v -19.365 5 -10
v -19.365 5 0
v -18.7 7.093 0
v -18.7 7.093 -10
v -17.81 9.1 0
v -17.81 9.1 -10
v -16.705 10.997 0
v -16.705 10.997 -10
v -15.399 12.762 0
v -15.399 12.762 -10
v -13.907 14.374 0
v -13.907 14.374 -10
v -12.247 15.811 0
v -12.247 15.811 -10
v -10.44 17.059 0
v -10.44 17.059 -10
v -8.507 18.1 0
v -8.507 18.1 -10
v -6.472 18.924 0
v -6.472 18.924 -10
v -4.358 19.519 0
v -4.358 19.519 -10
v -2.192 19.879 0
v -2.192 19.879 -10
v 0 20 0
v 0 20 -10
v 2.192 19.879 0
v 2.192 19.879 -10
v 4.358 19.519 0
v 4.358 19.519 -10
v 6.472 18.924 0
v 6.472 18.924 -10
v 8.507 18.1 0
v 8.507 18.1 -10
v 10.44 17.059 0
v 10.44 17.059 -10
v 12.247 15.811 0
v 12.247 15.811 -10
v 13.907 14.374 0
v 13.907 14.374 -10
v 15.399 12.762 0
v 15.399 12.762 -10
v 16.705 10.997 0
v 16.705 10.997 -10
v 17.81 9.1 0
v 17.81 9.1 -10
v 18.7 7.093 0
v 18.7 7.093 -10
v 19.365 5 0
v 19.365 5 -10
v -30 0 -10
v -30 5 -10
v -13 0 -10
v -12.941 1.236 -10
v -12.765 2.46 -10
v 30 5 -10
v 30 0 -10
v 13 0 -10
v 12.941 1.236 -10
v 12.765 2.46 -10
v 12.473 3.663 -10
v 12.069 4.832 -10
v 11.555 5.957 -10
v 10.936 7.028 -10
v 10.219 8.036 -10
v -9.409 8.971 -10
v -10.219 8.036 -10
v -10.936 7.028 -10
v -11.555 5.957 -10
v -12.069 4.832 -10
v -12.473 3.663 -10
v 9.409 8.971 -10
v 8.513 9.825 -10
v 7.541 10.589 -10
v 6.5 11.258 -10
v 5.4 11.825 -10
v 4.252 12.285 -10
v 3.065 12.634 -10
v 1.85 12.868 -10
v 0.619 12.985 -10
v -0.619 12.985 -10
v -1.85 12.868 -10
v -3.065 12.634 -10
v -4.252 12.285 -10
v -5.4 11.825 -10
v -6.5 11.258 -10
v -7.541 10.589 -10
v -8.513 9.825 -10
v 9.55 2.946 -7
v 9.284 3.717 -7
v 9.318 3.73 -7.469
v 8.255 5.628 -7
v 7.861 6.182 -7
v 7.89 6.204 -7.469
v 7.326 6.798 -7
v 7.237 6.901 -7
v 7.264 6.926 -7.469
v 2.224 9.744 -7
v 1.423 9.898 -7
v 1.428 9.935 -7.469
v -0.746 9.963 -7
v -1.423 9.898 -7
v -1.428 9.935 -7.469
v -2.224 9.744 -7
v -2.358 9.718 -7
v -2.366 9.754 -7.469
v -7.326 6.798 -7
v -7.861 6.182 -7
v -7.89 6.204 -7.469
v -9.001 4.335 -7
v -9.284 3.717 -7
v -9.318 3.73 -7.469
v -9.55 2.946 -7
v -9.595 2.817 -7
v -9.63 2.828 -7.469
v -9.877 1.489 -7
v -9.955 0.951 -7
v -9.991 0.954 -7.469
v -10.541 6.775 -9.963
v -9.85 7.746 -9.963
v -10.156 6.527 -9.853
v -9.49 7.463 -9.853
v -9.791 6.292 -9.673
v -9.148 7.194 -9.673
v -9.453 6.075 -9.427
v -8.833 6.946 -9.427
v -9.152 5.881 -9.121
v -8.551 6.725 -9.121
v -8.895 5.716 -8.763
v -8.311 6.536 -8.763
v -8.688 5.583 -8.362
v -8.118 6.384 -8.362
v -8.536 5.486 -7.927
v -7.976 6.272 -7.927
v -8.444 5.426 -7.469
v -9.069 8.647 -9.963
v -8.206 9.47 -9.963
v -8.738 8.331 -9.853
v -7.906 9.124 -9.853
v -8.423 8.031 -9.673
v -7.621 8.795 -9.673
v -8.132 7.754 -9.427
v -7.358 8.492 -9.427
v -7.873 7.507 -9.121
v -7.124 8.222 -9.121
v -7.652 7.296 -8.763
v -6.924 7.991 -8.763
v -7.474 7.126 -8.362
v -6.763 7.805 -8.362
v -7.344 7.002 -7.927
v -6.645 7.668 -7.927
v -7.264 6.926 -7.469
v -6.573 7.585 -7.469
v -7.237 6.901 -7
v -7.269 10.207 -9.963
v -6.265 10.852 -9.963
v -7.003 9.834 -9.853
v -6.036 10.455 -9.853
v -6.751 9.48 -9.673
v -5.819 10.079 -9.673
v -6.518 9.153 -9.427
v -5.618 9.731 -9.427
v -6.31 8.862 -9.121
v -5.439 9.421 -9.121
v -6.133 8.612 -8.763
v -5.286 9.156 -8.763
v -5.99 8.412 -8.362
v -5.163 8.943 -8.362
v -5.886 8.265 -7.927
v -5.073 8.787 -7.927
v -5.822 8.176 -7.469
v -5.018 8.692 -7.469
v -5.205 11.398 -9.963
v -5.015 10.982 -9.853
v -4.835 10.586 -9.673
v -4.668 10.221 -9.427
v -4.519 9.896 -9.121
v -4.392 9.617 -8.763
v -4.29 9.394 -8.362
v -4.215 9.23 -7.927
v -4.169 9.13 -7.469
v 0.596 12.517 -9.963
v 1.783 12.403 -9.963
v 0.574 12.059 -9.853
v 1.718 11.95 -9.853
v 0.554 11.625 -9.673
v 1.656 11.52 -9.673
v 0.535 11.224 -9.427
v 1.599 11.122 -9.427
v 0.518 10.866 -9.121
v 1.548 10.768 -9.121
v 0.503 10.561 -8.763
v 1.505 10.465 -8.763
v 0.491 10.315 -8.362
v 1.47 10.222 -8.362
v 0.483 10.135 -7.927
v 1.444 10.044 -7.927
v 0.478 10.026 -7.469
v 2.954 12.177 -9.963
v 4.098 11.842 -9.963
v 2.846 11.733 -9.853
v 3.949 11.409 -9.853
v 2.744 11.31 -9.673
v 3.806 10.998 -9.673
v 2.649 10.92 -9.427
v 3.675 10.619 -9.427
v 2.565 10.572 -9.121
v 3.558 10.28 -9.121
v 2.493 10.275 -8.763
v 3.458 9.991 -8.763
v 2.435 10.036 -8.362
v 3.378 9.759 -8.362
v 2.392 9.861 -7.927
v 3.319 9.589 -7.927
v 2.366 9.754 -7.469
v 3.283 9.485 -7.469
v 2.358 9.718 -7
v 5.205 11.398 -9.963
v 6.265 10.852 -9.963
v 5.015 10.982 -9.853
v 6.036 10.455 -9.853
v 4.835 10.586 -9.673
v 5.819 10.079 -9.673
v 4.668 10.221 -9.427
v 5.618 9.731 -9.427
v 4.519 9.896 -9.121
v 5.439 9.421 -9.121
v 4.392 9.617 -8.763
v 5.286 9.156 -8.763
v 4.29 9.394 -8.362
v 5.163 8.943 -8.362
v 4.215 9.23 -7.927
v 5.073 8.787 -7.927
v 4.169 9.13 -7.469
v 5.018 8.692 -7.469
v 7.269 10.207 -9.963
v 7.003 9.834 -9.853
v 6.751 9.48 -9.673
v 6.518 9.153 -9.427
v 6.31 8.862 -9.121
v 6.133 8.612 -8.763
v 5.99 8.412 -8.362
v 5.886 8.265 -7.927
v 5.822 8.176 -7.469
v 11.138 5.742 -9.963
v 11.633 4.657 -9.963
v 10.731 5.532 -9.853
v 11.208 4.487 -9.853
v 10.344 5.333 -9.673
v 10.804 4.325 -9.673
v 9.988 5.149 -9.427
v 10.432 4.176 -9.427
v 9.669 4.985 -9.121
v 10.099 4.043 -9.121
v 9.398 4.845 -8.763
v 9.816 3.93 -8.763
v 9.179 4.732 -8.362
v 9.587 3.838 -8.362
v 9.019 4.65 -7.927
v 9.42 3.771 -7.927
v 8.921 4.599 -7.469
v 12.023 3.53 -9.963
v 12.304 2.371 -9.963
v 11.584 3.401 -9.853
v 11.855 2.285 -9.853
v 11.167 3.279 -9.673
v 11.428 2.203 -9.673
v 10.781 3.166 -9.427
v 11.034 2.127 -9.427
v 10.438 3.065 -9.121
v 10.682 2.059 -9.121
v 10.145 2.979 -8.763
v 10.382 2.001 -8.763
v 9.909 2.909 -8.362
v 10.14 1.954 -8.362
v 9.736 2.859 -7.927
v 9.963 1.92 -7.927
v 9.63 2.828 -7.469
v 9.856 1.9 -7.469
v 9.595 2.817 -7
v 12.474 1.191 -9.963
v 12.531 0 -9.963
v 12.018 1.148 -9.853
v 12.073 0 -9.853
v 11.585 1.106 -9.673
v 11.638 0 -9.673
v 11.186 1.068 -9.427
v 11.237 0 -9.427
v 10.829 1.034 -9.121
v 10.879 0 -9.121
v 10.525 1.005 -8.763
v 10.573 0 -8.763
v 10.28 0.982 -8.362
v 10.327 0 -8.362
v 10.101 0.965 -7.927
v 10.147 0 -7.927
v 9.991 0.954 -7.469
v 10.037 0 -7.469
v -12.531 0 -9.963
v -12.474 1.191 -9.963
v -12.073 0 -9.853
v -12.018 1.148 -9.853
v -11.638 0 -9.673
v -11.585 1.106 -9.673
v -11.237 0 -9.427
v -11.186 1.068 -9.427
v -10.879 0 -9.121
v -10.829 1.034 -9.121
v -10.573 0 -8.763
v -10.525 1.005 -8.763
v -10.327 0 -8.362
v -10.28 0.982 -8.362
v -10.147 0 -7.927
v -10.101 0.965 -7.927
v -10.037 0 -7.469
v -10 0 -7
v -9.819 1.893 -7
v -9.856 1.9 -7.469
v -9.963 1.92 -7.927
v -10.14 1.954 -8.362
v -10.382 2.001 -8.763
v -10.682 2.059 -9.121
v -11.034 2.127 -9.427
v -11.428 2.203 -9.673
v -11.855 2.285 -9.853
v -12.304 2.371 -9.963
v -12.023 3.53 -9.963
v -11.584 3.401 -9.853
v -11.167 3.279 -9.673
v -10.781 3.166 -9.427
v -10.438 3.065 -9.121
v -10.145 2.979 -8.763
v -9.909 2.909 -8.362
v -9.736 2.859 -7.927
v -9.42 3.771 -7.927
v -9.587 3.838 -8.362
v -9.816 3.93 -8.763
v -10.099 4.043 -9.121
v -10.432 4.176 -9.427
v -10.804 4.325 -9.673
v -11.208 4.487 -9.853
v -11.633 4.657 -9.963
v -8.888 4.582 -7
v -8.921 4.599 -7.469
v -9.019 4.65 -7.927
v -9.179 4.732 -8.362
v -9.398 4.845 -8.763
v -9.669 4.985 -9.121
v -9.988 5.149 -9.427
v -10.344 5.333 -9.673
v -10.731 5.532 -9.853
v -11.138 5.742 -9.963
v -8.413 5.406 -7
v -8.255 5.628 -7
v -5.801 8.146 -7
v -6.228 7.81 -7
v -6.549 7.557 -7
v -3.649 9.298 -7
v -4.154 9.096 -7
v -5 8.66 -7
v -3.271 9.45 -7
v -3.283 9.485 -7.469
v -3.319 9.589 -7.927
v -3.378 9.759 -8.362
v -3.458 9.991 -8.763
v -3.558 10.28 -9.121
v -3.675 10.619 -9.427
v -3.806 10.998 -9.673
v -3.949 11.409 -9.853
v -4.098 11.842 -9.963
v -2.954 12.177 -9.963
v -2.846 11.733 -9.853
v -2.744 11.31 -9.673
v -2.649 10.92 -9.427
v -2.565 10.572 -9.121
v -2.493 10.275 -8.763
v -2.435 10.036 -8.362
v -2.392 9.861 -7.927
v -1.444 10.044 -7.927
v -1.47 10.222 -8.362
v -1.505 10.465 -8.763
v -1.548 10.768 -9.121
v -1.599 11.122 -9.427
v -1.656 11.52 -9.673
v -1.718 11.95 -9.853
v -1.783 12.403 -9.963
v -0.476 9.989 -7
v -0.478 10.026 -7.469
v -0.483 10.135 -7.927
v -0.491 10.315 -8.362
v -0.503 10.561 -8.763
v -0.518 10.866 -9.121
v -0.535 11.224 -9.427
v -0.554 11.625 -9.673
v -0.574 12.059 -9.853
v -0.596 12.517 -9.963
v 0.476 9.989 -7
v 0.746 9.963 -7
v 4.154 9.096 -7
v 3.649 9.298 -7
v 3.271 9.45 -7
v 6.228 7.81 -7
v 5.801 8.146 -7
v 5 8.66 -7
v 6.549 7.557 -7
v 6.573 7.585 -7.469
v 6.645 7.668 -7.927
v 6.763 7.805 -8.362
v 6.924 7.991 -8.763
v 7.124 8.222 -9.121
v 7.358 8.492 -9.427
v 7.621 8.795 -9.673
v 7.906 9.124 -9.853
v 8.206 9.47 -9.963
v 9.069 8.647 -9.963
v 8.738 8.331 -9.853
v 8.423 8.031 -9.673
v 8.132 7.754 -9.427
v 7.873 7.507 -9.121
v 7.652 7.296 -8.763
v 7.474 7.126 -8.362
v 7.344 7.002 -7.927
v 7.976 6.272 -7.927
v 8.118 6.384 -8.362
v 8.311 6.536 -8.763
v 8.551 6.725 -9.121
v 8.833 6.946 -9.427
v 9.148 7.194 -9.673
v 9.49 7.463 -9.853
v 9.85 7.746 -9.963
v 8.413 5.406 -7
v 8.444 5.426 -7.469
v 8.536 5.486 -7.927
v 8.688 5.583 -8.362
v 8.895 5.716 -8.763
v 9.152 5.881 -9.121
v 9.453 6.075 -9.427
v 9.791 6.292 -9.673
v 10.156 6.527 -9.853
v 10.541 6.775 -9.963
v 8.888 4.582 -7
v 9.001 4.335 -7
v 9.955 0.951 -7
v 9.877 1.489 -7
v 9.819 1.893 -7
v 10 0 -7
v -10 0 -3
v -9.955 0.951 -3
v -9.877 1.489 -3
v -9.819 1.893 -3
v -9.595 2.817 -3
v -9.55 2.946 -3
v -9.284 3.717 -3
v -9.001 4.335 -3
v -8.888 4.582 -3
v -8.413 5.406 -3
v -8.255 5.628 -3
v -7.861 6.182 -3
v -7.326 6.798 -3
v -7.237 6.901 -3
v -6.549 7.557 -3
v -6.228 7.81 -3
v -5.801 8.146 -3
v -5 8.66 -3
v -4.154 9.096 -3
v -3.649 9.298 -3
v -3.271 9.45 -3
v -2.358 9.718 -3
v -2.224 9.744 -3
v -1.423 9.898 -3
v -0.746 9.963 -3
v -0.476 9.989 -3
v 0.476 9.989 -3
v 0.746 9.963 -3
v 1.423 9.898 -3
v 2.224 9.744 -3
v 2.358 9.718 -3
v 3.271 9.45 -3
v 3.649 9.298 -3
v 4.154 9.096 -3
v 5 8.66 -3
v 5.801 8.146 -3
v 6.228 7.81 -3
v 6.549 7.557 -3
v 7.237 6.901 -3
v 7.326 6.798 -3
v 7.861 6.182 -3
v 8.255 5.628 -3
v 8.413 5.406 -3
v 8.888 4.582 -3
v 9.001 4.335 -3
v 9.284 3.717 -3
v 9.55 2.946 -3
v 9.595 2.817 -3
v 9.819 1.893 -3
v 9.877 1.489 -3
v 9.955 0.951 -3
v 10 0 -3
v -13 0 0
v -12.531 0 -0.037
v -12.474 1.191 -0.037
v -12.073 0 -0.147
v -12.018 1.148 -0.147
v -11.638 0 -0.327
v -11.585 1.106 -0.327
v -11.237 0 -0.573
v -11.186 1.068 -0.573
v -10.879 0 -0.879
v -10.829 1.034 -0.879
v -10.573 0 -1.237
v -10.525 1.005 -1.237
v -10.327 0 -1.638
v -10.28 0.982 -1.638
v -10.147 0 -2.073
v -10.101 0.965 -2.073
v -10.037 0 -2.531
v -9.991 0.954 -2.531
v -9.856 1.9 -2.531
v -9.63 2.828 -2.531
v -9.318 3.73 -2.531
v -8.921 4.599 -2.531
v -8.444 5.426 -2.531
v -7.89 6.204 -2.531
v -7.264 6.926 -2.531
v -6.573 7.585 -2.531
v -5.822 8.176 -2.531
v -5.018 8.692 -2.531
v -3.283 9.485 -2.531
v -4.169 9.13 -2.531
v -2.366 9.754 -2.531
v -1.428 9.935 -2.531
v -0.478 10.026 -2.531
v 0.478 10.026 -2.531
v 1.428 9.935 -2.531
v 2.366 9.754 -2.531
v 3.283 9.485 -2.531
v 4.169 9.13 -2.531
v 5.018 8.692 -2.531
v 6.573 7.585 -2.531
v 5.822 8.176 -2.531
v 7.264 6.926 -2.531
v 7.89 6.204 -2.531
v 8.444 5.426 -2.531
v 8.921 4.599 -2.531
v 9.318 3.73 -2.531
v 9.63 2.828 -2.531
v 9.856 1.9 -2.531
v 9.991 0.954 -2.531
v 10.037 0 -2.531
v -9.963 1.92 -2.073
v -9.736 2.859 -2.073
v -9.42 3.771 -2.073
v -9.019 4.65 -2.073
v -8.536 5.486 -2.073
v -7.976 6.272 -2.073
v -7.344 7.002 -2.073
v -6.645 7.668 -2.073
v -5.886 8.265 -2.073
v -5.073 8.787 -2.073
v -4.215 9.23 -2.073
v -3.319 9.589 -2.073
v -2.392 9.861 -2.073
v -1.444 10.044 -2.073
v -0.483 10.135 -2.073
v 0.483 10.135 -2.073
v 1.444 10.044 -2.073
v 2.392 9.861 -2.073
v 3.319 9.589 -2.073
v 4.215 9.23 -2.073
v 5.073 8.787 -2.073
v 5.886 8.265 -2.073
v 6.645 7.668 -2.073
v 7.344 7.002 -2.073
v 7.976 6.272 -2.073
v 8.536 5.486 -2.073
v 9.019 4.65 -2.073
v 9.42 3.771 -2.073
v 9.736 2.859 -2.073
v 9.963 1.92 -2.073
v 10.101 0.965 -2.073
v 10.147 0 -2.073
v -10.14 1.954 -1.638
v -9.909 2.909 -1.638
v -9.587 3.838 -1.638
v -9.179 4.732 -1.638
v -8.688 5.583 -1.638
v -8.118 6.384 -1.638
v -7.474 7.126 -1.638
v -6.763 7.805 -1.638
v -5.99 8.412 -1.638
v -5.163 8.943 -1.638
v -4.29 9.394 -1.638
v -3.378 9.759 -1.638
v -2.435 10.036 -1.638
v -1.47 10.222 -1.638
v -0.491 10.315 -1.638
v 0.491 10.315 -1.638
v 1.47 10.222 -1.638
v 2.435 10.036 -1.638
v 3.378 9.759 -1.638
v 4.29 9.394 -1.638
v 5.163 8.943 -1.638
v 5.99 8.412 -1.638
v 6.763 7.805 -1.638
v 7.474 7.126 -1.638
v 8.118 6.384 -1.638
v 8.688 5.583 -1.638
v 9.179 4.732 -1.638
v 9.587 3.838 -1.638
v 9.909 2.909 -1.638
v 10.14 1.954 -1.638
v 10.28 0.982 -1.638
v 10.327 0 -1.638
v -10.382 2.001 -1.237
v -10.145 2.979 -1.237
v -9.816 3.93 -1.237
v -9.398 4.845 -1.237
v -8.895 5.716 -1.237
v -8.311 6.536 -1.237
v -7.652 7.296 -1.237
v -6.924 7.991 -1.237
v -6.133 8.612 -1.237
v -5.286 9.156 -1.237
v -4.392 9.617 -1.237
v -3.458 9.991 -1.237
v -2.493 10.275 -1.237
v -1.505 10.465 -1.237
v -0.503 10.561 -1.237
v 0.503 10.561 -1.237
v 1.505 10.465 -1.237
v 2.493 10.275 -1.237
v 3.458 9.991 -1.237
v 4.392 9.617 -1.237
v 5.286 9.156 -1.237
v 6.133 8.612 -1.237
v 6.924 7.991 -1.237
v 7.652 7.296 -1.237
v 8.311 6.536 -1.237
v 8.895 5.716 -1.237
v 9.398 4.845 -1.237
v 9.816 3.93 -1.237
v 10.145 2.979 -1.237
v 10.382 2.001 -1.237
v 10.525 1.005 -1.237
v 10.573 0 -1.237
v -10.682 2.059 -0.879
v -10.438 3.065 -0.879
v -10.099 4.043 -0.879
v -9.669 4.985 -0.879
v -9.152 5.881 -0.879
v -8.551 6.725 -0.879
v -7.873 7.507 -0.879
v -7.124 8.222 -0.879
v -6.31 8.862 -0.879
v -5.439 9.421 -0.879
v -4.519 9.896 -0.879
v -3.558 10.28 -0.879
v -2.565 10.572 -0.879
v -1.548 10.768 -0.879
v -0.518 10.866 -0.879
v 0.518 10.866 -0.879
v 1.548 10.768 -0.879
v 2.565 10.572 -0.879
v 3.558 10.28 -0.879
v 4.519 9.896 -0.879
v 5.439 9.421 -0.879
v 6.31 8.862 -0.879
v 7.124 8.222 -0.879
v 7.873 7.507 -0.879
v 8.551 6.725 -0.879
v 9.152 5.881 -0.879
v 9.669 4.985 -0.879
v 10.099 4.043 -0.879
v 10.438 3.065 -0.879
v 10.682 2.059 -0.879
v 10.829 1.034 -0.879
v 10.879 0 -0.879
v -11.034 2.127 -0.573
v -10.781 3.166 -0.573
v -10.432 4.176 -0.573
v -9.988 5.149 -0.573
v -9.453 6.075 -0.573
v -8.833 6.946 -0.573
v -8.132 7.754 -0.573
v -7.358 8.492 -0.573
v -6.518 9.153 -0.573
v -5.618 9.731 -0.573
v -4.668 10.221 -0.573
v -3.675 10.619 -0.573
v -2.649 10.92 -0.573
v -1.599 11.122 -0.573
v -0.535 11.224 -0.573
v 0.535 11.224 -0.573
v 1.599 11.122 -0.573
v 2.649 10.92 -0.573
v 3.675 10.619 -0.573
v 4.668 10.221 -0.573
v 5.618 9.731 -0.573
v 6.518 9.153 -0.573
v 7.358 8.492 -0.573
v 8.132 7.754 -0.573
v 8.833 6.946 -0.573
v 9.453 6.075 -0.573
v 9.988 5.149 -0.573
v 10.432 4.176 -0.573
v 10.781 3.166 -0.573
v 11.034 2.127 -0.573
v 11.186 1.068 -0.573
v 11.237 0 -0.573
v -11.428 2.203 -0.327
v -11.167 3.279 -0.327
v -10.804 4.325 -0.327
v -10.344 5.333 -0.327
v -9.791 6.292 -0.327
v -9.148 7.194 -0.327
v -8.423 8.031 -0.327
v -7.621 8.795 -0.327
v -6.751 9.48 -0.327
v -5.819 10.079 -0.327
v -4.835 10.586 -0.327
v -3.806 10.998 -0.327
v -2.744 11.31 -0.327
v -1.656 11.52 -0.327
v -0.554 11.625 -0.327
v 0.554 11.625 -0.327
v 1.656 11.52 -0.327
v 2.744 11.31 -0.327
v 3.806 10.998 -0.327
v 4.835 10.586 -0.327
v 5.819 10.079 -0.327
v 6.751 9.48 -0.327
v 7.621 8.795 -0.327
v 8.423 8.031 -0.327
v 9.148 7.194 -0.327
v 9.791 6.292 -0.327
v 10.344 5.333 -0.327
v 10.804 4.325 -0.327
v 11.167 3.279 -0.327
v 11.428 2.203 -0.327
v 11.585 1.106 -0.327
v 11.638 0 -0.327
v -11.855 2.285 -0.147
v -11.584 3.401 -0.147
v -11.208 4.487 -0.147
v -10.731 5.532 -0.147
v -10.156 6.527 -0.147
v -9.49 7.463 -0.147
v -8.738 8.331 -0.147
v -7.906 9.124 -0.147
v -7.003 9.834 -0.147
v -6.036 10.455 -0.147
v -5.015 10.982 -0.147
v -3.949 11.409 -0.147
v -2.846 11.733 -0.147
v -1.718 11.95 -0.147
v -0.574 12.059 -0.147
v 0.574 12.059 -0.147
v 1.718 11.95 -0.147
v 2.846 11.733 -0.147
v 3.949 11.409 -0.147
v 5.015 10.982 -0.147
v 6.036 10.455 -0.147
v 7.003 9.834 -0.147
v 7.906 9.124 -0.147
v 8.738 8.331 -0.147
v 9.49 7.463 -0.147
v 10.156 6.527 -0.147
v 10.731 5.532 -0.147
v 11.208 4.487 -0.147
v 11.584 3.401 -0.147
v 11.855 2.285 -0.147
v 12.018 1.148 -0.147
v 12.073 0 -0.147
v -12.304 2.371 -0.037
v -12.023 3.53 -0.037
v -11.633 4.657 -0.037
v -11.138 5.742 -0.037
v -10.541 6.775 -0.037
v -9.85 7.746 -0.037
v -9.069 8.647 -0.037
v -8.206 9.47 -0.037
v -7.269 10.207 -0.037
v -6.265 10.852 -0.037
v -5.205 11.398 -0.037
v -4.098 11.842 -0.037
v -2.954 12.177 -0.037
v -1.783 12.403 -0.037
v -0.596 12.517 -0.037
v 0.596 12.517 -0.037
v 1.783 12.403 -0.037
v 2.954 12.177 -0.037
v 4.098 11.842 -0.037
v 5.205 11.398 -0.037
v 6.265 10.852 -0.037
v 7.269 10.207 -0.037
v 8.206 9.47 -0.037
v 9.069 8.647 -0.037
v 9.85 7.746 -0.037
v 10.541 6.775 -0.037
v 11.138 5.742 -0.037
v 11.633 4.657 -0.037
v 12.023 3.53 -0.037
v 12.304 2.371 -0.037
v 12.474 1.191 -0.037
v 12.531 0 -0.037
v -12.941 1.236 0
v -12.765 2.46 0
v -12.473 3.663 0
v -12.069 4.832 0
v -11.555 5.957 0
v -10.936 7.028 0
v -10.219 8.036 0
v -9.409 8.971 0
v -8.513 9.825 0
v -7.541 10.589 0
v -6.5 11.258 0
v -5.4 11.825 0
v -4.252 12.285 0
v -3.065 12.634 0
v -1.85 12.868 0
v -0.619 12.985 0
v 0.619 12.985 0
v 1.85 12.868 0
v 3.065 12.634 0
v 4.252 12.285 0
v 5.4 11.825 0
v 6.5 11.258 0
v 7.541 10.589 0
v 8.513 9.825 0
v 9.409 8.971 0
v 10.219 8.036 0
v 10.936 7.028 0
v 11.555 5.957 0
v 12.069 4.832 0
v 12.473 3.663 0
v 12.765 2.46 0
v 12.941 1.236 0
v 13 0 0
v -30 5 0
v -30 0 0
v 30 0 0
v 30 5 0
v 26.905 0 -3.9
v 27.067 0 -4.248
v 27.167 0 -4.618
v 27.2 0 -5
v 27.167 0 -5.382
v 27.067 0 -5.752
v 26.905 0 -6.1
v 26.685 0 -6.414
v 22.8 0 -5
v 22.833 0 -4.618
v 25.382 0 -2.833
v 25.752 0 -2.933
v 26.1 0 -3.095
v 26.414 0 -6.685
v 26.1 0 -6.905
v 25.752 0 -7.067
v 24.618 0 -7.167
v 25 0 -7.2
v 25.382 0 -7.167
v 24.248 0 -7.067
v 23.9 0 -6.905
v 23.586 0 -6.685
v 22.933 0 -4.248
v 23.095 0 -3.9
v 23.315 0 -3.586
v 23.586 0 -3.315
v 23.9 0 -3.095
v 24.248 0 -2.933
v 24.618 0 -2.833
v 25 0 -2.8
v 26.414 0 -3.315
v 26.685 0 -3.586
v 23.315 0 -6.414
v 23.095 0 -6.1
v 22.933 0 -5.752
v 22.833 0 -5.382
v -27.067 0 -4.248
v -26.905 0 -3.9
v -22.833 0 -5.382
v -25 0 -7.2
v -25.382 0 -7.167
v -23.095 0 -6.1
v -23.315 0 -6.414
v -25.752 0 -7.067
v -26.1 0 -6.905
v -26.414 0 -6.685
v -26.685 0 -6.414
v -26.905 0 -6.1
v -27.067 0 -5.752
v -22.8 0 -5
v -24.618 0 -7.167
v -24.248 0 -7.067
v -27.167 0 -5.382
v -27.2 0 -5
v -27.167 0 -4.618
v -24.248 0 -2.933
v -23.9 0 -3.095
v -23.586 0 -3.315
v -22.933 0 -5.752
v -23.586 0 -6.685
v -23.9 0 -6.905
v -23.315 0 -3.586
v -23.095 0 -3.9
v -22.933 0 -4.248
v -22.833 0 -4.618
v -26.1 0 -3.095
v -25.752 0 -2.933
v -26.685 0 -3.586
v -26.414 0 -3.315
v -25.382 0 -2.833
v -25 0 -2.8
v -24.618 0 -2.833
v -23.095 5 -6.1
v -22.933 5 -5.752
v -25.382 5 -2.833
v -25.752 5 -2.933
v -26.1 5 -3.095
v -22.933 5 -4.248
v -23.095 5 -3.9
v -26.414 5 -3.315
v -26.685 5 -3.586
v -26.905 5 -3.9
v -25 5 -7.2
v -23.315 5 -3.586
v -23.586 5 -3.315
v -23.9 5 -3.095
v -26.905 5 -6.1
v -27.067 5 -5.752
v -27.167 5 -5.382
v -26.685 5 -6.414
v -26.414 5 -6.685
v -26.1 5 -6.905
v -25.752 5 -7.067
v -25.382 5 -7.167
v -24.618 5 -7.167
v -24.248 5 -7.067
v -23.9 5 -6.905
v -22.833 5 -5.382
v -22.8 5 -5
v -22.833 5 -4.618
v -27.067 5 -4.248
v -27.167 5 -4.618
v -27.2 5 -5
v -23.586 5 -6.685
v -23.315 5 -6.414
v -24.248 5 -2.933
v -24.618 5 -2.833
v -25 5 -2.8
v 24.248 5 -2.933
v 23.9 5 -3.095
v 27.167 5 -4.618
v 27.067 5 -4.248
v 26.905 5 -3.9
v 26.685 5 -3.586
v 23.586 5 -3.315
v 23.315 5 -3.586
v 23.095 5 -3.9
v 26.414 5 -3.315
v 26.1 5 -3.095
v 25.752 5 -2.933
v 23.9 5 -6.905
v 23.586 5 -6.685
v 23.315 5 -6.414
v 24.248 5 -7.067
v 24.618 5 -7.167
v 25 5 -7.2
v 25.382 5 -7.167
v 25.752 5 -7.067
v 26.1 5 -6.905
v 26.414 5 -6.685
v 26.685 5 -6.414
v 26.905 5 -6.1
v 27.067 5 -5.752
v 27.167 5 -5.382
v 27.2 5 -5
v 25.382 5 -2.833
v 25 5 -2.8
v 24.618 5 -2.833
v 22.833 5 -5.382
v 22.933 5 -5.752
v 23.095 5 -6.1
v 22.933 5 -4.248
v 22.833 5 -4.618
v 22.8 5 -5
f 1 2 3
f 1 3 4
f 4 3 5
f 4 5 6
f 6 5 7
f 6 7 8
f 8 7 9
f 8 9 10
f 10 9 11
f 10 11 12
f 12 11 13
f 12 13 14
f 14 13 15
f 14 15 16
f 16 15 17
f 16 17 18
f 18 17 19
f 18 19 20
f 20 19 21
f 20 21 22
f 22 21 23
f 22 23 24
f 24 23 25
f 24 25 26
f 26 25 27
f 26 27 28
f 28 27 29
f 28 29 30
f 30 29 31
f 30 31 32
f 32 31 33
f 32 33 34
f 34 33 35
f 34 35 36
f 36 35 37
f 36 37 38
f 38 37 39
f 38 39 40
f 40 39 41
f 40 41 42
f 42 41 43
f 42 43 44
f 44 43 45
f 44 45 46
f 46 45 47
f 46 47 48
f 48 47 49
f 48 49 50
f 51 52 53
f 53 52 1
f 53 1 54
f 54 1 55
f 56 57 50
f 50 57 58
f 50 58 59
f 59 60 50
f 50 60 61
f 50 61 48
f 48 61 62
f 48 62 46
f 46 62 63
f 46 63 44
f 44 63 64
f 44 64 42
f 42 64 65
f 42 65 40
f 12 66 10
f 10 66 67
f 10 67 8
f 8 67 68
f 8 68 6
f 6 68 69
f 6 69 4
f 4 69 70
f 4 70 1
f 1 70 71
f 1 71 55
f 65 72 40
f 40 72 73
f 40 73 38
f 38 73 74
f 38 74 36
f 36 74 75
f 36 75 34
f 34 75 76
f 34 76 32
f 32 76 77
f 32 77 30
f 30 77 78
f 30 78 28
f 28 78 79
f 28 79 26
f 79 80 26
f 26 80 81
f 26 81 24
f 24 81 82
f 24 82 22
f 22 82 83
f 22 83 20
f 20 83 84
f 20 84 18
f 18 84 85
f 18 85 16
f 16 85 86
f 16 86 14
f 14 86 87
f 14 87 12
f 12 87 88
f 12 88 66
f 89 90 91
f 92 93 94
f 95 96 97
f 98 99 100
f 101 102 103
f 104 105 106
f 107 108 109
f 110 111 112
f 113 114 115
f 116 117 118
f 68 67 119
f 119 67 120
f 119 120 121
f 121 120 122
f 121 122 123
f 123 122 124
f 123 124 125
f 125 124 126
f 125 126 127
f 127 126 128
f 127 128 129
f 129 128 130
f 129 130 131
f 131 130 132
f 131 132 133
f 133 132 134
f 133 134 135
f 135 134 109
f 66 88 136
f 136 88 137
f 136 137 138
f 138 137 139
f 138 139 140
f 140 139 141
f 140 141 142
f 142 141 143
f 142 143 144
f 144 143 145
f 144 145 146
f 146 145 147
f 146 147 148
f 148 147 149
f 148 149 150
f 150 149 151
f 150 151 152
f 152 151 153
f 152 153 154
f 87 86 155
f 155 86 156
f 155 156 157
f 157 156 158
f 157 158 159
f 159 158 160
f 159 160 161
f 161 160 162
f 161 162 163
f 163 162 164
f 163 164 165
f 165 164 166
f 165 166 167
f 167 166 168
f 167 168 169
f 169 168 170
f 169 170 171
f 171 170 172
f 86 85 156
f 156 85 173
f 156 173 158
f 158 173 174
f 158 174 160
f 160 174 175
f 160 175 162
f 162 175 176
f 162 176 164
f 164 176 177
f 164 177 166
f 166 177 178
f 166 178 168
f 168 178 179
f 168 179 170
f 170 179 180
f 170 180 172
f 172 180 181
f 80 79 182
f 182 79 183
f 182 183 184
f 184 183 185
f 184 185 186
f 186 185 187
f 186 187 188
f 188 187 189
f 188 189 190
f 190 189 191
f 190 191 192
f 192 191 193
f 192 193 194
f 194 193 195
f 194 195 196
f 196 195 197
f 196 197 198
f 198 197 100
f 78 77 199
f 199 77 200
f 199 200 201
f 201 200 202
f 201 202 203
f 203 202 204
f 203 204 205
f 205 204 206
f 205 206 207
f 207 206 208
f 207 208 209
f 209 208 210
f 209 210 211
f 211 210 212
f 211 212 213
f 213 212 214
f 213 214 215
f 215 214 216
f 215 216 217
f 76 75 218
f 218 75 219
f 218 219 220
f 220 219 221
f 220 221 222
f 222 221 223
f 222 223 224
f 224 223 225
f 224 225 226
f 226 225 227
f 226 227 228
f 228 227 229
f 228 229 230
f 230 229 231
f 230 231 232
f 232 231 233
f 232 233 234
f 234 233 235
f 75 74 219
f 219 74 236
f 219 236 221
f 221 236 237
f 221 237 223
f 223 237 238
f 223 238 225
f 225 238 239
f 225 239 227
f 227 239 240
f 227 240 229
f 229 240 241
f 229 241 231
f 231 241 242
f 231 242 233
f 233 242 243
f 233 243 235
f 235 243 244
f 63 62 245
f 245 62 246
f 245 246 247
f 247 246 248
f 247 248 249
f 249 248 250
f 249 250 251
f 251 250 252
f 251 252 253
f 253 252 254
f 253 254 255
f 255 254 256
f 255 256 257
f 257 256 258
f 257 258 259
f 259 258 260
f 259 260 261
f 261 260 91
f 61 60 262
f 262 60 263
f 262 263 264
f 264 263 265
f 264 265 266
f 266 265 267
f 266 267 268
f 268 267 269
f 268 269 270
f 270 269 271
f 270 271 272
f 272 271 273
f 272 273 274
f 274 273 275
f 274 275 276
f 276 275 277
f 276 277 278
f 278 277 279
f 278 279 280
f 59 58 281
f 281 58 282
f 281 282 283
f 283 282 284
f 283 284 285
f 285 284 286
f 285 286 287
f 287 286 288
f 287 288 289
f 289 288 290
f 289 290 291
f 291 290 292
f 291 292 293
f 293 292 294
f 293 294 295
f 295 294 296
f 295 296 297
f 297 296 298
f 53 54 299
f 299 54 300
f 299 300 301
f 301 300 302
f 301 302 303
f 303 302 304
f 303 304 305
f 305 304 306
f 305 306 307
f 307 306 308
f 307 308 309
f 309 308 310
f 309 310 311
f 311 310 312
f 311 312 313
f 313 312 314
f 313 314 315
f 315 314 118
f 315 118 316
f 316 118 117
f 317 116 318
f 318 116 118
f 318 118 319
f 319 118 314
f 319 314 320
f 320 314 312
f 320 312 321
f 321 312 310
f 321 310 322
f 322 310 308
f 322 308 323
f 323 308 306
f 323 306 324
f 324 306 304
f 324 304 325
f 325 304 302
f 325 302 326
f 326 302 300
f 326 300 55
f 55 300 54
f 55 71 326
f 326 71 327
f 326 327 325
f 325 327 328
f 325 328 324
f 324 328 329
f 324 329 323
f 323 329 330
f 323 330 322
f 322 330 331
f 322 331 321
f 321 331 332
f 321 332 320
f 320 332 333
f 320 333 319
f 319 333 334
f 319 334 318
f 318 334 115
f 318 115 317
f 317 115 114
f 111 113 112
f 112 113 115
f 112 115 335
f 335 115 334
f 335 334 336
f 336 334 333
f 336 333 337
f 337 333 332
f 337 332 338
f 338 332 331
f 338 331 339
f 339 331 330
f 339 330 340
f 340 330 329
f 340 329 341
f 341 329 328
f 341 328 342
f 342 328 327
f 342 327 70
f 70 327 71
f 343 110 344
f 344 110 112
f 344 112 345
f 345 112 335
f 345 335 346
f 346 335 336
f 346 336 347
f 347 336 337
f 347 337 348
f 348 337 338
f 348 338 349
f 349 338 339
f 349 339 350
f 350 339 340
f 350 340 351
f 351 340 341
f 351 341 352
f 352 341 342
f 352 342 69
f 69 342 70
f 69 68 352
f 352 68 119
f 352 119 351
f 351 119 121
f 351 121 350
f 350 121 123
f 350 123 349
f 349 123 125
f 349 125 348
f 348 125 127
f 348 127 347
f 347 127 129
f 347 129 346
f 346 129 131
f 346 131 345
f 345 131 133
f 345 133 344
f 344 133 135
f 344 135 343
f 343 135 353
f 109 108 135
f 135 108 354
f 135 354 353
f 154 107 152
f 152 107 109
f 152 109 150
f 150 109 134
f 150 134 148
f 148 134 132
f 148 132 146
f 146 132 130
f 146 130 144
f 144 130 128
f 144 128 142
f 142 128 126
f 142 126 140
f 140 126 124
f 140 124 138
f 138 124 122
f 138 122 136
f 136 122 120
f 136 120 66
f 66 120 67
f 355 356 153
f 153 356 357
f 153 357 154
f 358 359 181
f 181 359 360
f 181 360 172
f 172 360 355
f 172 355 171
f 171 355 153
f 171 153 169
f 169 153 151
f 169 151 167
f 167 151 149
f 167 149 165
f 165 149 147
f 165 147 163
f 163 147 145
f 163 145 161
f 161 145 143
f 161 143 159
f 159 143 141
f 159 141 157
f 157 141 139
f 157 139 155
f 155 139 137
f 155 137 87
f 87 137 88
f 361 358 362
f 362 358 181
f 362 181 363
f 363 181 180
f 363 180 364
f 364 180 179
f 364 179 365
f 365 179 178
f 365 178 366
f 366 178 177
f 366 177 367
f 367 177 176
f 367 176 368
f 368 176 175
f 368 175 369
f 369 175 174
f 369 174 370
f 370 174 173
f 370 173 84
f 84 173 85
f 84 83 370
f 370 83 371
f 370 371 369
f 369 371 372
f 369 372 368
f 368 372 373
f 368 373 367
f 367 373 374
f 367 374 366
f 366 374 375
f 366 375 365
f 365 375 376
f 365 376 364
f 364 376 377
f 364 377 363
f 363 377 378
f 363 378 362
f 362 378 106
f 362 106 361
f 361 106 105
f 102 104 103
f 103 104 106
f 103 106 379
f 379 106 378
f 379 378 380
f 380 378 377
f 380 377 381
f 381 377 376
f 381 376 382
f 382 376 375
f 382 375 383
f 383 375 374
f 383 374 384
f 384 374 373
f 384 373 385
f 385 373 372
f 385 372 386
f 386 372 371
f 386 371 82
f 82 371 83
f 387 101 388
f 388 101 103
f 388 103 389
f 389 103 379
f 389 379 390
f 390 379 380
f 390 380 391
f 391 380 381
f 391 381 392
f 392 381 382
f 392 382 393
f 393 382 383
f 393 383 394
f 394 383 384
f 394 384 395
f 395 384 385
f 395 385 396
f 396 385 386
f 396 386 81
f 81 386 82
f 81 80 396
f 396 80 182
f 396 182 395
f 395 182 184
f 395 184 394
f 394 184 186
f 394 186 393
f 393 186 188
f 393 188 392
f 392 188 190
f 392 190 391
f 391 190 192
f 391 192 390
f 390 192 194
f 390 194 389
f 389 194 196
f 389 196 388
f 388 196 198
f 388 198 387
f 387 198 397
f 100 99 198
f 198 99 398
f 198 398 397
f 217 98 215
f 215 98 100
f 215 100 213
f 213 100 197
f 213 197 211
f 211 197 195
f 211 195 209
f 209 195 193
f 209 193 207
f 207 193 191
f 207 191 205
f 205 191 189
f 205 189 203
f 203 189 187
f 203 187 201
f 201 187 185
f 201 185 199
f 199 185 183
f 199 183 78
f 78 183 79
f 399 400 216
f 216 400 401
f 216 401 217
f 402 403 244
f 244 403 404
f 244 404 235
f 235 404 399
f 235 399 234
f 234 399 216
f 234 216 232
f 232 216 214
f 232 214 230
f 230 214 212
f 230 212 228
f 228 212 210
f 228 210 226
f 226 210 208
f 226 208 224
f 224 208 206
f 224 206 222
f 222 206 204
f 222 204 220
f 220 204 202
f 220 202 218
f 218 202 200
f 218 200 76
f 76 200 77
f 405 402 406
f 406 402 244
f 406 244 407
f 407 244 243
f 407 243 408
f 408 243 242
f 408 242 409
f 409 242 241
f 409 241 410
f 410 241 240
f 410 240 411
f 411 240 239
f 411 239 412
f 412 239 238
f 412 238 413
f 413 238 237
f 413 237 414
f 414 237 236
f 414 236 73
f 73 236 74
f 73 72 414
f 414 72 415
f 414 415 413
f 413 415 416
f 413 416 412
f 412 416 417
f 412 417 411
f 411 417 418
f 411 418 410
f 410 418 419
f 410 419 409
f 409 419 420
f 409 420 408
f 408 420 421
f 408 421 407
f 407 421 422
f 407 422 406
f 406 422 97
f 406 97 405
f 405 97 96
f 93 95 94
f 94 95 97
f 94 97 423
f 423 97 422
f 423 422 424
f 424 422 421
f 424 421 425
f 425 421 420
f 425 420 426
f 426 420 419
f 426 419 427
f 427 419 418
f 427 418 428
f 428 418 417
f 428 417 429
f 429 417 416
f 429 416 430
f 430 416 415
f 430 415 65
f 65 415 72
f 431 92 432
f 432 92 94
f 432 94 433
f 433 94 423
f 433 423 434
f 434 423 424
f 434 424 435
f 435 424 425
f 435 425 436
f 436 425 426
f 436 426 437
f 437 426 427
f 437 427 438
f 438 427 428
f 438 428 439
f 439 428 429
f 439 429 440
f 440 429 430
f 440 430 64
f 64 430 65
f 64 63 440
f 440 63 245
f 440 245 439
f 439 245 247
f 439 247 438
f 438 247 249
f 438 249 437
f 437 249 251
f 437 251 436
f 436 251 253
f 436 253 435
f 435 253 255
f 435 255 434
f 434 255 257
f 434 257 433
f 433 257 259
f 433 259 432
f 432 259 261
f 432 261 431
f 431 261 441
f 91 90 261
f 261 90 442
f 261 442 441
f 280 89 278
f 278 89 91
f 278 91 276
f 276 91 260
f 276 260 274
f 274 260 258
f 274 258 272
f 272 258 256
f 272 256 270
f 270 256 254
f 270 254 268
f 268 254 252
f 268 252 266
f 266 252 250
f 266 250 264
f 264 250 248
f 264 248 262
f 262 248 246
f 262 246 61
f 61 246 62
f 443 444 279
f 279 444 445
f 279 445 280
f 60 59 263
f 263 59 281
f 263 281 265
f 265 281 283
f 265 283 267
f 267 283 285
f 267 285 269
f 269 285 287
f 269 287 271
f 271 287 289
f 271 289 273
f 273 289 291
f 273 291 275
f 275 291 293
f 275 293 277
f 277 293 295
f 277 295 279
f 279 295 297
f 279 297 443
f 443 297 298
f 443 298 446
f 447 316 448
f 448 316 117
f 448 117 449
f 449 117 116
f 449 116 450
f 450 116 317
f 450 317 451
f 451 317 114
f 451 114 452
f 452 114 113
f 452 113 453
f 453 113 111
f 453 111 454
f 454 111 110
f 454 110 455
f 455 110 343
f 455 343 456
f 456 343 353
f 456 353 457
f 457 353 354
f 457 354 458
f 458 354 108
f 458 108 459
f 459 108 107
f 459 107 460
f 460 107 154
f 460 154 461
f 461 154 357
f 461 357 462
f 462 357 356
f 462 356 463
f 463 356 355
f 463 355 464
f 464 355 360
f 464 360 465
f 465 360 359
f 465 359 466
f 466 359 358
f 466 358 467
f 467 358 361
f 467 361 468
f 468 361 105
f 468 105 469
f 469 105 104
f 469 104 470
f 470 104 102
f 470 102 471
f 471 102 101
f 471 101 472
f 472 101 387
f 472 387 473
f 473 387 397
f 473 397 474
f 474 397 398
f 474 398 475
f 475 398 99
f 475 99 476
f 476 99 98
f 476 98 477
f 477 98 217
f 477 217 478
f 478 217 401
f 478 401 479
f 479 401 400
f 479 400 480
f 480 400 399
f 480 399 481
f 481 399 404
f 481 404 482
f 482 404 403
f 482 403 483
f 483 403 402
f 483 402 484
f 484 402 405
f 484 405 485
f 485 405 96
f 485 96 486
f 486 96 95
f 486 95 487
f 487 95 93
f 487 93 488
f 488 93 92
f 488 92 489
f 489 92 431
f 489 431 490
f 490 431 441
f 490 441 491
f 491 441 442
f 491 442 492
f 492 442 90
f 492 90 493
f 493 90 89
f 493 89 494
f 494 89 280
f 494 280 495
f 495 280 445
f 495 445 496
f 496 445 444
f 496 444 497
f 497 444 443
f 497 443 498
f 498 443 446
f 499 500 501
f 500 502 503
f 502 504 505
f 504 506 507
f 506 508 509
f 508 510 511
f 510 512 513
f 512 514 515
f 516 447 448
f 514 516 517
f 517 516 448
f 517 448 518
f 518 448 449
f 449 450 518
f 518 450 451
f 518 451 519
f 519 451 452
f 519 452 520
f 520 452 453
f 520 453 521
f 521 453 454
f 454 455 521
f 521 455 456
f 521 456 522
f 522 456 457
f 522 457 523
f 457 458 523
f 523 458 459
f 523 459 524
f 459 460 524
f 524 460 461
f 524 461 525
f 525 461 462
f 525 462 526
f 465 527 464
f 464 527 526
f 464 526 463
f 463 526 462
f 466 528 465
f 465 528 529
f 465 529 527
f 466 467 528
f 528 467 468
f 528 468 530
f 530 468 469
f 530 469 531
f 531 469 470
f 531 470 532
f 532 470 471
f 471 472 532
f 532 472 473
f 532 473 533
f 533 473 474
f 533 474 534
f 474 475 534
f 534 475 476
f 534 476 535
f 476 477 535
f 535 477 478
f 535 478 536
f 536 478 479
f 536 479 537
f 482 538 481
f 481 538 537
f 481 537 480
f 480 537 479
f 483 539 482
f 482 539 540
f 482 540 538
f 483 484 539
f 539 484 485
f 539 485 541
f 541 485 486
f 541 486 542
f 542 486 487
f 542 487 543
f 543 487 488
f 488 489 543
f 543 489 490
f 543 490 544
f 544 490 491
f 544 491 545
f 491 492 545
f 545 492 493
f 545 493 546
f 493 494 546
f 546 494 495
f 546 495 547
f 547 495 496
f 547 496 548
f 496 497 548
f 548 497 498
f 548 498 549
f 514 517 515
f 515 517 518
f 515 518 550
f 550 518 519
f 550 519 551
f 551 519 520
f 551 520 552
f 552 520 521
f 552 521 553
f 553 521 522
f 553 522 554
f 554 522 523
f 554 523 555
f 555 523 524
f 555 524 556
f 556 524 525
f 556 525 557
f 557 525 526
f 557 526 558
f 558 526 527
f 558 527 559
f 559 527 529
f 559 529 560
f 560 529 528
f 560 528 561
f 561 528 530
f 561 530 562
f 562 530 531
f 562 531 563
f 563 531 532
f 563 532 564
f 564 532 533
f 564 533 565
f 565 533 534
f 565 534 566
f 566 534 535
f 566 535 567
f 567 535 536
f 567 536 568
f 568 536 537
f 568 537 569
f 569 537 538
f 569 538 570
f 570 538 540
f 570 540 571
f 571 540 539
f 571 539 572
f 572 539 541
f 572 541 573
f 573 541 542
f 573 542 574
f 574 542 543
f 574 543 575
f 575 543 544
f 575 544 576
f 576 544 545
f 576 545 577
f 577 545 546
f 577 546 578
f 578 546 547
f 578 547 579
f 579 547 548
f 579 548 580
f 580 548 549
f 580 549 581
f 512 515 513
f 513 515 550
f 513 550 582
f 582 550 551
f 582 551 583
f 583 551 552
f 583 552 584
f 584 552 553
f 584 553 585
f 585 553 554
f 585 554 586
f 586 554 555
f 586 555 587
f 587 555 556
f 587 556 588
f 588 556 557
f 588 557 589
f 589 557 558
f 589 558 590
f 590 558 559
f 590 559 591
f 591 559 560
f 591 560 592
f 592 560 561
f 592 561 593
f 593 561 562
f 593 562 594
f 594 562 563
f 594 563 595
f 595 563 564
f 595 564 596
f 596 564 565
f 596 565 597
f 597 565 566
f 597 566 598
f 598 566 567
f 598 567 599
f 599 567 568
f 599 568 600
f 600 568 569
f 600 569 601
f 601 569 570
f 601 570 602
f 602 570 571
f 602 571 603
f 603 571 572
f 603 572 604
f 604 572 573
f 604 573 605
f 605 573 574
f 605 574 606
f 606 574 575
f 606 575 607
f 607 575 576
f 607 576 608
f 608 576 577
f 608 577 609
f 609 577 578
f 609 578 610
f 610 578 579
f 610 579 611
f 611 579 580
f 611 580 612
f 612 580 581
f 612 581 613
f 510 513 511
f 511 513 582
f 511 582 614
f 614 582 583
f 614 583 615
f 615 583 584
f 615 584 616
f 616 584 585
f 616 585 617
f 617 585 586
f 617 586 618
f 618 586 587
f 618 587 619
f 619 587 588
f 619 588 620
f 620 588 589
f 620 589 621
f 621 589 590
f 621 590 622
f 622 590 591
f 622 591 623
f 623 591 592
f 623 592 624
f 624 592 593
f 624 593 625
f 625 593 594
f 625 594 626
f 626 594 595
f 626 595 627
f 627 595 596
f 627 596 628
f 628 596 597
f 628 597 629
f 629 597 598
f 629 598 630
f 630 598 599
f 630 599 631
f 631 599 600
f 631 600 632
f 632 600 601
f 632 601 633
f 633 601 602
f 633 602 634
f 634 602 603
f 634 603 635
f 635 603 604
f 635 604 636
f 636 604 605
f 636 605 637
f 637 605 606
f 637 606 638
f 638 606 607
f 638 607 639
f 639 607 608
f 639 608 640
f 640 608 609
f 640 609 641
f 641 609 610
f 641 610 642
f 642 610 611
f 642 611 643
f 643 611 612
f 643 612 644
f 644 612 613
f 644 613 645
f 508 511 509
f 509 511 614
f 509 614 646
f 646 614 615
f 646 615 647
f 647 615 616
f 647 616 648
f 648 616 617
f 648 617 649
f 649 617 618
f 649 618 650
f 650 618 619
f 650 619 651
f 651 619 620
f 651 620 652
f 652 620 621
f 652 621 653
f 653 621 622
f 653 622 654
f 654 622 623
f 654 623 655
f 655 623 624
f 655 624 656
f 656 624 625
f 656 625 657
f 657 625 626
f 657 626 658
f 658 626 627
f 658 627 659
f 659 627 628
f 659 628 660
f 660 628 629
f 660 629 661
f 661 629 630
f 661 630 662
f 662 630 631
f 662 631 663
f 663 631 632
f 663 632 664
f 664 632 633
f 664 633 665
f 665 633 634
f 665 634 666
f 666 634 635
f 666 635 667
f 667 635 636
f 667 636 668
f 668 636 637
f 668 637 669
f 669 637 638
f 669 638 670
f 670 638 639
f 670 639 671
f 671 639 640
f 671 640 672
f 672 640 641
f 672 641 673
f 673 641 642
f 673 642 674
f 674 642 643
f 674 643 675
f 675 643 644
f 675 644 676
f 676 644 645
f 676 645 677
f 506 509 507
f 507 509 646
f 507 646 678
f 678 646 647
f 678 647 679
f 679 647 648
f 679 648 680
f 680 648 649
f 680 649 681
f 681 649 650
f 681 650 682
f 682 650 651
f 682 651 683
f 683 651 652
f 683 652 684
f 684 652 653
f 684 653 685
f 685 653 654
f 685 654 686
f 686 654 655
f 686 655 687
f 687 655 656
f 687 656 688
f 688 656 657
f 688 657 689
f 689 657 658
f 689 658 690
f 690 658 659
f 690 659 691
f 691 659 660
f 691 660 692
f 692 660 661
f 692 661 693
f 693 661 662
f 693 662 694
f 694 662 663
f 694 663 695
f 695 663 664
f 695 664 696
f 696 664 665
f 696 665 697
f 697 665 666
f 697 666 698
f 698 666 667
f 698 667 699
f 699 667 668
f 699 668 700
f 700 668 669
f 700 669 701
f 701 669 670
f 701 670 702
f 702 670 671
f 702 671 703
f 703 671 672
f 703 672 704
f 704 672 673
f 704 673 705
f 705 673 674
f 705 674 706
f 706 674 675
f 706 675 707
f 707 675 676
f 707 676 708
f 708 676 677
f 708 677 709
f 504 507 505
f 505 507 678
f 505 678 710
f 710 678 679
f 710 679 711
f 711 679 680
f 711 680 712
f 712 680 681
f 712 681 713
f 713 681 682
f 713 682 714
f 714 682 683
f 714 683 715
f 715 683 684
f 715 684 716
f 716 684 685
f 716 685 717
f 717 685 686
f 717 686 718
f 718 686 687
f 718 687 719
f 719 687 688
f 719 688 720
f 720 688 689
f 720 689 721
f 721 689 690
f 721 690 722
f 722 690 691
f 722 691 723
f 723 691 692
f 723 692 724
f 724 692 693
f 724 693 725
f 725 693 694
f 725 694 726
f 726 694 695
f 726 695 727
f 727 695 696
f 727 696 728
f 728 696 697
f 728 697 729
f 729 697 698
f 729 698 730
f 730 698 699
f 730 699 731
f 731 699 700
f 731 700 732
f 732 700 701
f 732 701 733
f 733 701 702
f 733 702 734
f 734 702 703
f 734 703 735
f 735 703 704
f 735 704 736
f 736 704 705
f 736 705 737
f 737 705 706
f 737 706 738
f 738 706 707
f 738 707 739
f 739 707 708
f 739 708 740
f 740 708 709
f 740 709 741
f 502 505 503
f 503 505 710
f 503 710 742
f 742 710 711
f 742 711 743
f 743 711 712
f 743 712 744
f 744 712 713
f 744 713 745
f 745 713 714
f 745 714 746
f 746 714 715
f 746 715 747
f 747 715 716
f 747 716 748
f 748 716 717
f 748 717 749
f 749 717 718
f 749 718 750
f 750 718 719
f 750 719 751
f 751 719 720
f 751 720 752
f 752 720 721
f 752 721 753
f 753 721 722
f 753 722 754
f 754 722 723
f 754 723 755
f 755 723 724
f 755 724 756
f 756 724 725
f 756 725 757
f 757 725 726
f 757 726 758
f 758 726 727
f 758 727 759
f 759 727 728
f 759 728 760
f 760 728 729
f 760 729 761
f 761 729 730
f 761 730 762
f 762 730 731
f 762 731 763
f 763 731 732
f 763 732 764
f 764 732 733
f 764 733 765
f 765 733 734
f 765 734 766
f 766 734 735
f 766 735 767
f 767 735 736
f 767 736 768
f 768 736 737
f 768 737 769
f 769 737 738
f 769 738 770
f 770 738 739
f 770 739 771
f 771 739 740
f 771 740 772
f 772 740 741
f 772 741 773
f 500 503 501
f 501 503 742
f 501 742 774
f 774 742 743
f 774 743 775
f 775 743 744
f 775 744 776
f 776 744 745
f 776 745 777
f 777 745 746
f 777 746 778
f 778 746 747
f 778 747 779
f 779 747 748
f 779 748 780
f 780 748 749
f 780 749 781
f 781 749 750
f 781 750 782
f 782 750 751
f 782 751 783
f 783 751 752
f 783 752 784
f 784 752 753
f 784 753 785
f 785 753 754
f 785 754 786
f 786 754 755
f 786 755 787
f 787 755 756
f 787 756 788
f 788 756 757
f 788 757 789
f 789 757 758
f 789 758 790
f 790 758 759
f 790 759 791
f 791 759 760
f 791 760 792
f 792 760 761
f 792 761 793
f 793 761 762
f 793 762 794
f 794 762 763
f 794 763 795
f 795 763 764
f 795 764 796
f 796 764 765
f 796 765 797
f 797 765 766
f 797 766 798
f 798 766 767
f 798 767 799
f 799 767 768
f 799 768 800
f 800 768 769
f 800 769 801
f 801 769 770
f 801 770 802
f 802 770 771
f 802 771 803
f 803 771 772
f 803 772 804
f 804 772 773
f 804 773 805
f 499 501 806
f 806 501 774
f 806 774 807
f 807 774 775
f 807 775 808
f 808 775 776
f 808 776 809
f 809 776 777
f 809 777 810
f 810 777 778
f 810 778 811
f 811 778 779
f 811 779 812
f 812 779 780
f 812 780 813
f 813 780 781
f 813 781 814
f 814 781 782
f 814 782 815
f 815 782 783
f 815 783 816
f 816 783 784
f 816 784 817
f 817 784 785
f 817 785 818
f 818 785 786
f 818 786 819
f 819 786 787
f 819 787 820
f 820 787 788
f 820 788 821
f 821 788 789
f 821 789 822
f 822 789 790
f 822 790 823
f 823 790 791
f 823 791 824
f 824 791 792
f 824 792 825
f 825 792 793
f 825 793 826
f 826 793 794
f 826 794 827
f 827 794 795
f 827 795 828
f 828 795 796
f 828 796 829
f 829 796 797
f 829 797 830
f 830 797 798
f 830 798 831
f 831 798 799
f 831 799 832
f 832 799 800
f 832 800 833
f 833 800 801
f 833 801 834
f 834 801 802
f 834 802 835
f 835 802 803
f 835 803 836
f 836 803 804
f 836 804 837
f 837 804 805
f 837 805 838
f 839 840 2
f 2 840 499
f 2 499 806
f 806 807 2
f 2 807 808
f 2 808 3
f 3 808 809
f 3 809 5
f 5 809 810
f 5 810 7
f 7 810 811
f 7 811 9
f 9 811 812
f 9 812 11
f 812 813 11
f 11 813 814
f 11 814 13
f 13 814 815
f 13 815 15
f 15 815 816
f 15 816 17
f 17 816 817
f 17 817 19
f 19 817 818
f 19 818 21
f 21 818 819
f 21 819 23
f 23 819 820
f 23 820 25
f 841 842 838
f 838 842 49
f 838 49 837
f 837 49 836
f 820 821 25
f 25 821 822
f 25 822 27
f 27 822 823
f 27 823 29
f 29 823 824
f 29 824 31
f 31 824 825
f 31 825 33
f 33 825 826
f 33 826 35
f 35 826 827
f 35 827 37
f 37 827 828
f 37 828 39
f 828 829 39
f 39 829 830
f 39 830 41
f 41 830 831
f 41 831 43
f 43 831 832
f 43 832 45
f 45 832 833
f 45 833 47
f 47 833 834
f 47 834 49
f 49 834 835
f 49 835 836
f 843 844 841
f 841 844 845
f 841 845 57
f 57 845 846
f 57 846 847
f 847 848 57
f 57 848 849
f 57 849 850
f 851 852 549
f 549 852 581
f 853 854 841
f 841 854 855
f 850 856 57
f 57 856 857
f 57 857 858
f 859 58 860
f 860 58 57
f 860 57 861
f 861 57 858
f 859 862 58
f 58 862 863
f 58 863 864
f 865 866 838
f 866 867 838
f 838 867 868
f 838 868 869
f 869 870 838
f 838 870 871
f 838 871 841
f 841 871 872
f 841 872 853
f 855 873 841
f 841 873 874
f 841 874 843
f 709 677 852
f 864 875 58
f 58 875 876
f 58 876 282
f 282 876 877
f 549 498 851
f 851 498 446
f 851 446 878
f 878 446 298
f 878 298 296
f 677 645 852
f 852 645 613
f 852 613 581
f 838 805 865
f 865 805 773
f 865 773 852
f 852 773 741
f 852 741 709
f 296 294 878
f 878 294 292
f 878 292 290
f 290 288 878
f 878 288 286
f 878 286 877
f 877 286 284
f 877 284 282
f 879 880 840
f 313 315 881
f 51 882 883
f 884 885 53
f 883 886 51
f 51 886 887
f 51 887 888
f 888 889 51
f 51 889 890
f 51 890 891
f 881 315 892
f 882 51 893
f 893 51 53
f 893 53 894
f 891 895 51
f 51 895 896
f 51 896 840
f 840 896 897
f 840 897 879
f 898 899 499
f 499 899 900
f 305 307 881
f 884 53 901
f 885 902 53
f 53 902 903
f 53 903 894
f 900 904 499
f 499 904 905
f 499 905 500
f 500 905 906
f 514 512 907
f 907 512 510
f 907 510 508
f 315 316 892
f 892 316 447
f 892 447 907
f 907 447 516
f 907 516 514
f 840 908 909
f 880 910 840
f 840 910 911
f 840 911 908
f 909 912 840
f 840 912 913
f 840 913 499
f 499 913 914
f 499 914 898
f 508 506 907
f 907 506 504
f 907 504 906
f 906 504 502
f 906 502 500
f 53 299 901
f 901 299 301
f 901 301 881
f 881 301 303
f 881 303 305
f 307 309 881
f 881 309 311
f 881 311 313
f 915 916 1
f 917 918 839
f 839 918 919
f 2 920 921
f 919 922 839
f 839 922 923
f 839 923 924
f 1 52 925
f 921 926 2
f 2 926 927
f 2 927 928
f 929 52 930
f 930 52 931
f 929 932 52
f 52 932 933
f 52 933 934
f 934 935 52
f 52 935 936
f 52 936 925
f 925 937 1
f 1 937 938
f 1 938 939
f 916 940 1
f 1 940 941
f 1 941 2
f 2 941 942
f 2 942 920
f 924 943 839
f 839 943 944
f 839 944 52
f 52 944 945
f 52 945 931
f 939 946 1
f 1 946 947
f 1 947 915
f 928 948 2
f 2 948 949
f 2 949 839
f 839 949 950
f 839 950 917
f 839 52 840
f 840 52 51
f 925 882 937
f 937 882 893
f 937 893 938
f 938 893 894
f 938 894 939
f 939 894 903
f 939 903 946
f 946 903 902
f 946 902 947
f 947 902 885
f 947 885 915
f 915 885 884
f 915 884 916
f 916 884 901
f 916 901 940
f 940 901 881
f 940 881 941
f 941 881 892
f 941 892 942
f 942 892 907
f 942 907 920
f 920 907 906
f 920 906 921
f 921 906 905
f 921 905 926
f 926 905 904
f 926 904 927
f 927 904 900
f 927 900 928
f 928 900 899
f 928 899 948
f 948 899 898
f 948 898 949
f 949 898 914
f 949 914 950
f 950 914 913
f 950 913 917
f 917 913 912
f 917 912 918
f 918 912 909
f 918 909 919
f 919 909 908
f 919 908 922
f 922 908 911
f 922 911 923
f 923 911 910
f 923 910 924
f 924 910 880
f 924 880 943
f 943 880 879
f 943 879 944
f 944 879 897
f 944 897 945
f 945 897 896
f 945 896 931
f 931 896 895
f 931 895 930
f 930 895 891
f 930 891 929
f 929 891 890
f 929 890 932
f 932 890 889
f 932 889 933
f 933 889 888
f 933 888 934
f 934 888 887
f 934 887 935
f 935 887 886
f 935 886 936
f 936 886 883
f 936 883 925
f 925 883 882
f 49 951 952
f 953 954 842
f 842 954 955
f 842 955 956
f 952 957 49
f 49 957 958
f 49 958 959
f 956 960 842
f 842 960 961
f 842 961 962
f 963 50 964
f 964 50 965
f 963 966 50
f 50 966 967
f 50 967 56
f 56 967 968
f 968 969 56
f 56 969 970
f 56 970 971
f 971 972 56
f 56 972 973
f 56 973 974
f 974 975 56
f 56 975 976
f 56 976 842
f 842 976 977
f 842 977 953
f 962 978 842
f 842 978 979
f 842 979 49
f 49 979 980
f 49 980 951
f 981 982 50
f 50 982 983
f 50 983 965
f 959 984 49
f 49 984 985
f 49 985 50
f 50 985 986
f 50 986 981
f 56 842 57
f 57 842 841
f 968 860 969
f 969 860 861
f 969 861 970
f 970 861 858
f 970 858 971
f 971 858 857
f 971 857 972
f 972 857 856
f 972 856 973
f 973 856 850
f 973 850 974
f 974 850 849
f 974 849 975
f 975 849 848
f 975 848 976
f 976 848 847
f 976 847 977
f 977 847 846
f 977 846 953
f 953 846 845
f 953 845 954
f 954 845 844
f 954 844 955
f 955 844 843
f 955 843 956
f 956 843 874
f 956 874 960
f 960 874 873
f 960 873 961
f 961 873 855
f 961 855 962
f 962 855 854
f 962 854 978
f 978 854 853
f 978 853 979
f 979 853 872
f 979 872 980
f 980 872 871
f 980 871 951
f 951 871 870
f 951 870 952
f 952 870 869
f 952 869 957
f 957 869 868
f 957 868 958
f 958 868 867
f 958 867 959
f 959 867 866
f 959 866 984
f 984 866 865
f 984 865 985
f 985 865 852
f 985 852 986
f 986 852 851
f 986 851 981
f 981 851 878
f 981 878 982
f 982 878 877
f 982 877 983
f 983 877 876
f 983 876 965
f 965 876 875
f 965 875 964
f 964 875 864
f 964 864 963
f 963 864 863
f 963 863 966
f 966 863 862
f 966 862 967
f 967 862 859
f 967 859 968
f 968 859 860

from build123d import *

# Parameters (mm, degrees)
REVOLVE1_ANGLE      = 180
SKETCH2_R           = 2.2
BOSS_EXTRUDE1_DEPTH = 5


with BuildPart() as part:
    # Sketch1 → Revolve1 (revolve)
    with BuildSketch(Plane(origin=(0, 0, 0), x_dir=(1, 0, 0), z_dir=(0, 1, 0))):
        with BuildLine():
            Line((-20, 0), (-13, 0))
            ThreePointArc((-13, 0), (-10.878679656, 0.878679656), (-10, 3))
            Line((-10, 3), (-10, 7))
            ThreePointArc((-10, 7), (-10.878679656, 9.121320344), (-13, 10))
            Line((-13, 10), (-20, 10))
            Line((-20, 10), (-20, 0))
        make_face()
    revolve(axis=Axis((0, 0, 0), (0, 0, -1)), revolution_arc=REVOLVE1_ANGLE)

    # Sketch2 → Boss-Extrude1 (add)
    # profile 1 of 2: a face of its own
    with BuildSketch(Plane.XZ):
        Polygon((-20, 0), (-30, 0), (-30, -10), (-20, -10), (-16.5, -10), (-16.5, 0), align=None)
        with Locations(Location((-25, -5, 0), (0, 0, 270))):
            Circle(SKETCH2_R, mode=Mode.SUBTRACT)
    # profile 2 of 2: a face of its own
    with BuildSketch(Plane.XZ):
        Polygon((20, 0), (30, 0), (30, -10), (20, -10), (16.5, -10), (16.5, 0), align=None)
        with Locations(Location((25, -5, 0), (0, 0, 270))):
            Circle(SKETCH2_R, mode=Mode.SUBTRACT)
    extrude(amount=-BOSS_EXTRUDE1_DEPTH)


solid = part.part
